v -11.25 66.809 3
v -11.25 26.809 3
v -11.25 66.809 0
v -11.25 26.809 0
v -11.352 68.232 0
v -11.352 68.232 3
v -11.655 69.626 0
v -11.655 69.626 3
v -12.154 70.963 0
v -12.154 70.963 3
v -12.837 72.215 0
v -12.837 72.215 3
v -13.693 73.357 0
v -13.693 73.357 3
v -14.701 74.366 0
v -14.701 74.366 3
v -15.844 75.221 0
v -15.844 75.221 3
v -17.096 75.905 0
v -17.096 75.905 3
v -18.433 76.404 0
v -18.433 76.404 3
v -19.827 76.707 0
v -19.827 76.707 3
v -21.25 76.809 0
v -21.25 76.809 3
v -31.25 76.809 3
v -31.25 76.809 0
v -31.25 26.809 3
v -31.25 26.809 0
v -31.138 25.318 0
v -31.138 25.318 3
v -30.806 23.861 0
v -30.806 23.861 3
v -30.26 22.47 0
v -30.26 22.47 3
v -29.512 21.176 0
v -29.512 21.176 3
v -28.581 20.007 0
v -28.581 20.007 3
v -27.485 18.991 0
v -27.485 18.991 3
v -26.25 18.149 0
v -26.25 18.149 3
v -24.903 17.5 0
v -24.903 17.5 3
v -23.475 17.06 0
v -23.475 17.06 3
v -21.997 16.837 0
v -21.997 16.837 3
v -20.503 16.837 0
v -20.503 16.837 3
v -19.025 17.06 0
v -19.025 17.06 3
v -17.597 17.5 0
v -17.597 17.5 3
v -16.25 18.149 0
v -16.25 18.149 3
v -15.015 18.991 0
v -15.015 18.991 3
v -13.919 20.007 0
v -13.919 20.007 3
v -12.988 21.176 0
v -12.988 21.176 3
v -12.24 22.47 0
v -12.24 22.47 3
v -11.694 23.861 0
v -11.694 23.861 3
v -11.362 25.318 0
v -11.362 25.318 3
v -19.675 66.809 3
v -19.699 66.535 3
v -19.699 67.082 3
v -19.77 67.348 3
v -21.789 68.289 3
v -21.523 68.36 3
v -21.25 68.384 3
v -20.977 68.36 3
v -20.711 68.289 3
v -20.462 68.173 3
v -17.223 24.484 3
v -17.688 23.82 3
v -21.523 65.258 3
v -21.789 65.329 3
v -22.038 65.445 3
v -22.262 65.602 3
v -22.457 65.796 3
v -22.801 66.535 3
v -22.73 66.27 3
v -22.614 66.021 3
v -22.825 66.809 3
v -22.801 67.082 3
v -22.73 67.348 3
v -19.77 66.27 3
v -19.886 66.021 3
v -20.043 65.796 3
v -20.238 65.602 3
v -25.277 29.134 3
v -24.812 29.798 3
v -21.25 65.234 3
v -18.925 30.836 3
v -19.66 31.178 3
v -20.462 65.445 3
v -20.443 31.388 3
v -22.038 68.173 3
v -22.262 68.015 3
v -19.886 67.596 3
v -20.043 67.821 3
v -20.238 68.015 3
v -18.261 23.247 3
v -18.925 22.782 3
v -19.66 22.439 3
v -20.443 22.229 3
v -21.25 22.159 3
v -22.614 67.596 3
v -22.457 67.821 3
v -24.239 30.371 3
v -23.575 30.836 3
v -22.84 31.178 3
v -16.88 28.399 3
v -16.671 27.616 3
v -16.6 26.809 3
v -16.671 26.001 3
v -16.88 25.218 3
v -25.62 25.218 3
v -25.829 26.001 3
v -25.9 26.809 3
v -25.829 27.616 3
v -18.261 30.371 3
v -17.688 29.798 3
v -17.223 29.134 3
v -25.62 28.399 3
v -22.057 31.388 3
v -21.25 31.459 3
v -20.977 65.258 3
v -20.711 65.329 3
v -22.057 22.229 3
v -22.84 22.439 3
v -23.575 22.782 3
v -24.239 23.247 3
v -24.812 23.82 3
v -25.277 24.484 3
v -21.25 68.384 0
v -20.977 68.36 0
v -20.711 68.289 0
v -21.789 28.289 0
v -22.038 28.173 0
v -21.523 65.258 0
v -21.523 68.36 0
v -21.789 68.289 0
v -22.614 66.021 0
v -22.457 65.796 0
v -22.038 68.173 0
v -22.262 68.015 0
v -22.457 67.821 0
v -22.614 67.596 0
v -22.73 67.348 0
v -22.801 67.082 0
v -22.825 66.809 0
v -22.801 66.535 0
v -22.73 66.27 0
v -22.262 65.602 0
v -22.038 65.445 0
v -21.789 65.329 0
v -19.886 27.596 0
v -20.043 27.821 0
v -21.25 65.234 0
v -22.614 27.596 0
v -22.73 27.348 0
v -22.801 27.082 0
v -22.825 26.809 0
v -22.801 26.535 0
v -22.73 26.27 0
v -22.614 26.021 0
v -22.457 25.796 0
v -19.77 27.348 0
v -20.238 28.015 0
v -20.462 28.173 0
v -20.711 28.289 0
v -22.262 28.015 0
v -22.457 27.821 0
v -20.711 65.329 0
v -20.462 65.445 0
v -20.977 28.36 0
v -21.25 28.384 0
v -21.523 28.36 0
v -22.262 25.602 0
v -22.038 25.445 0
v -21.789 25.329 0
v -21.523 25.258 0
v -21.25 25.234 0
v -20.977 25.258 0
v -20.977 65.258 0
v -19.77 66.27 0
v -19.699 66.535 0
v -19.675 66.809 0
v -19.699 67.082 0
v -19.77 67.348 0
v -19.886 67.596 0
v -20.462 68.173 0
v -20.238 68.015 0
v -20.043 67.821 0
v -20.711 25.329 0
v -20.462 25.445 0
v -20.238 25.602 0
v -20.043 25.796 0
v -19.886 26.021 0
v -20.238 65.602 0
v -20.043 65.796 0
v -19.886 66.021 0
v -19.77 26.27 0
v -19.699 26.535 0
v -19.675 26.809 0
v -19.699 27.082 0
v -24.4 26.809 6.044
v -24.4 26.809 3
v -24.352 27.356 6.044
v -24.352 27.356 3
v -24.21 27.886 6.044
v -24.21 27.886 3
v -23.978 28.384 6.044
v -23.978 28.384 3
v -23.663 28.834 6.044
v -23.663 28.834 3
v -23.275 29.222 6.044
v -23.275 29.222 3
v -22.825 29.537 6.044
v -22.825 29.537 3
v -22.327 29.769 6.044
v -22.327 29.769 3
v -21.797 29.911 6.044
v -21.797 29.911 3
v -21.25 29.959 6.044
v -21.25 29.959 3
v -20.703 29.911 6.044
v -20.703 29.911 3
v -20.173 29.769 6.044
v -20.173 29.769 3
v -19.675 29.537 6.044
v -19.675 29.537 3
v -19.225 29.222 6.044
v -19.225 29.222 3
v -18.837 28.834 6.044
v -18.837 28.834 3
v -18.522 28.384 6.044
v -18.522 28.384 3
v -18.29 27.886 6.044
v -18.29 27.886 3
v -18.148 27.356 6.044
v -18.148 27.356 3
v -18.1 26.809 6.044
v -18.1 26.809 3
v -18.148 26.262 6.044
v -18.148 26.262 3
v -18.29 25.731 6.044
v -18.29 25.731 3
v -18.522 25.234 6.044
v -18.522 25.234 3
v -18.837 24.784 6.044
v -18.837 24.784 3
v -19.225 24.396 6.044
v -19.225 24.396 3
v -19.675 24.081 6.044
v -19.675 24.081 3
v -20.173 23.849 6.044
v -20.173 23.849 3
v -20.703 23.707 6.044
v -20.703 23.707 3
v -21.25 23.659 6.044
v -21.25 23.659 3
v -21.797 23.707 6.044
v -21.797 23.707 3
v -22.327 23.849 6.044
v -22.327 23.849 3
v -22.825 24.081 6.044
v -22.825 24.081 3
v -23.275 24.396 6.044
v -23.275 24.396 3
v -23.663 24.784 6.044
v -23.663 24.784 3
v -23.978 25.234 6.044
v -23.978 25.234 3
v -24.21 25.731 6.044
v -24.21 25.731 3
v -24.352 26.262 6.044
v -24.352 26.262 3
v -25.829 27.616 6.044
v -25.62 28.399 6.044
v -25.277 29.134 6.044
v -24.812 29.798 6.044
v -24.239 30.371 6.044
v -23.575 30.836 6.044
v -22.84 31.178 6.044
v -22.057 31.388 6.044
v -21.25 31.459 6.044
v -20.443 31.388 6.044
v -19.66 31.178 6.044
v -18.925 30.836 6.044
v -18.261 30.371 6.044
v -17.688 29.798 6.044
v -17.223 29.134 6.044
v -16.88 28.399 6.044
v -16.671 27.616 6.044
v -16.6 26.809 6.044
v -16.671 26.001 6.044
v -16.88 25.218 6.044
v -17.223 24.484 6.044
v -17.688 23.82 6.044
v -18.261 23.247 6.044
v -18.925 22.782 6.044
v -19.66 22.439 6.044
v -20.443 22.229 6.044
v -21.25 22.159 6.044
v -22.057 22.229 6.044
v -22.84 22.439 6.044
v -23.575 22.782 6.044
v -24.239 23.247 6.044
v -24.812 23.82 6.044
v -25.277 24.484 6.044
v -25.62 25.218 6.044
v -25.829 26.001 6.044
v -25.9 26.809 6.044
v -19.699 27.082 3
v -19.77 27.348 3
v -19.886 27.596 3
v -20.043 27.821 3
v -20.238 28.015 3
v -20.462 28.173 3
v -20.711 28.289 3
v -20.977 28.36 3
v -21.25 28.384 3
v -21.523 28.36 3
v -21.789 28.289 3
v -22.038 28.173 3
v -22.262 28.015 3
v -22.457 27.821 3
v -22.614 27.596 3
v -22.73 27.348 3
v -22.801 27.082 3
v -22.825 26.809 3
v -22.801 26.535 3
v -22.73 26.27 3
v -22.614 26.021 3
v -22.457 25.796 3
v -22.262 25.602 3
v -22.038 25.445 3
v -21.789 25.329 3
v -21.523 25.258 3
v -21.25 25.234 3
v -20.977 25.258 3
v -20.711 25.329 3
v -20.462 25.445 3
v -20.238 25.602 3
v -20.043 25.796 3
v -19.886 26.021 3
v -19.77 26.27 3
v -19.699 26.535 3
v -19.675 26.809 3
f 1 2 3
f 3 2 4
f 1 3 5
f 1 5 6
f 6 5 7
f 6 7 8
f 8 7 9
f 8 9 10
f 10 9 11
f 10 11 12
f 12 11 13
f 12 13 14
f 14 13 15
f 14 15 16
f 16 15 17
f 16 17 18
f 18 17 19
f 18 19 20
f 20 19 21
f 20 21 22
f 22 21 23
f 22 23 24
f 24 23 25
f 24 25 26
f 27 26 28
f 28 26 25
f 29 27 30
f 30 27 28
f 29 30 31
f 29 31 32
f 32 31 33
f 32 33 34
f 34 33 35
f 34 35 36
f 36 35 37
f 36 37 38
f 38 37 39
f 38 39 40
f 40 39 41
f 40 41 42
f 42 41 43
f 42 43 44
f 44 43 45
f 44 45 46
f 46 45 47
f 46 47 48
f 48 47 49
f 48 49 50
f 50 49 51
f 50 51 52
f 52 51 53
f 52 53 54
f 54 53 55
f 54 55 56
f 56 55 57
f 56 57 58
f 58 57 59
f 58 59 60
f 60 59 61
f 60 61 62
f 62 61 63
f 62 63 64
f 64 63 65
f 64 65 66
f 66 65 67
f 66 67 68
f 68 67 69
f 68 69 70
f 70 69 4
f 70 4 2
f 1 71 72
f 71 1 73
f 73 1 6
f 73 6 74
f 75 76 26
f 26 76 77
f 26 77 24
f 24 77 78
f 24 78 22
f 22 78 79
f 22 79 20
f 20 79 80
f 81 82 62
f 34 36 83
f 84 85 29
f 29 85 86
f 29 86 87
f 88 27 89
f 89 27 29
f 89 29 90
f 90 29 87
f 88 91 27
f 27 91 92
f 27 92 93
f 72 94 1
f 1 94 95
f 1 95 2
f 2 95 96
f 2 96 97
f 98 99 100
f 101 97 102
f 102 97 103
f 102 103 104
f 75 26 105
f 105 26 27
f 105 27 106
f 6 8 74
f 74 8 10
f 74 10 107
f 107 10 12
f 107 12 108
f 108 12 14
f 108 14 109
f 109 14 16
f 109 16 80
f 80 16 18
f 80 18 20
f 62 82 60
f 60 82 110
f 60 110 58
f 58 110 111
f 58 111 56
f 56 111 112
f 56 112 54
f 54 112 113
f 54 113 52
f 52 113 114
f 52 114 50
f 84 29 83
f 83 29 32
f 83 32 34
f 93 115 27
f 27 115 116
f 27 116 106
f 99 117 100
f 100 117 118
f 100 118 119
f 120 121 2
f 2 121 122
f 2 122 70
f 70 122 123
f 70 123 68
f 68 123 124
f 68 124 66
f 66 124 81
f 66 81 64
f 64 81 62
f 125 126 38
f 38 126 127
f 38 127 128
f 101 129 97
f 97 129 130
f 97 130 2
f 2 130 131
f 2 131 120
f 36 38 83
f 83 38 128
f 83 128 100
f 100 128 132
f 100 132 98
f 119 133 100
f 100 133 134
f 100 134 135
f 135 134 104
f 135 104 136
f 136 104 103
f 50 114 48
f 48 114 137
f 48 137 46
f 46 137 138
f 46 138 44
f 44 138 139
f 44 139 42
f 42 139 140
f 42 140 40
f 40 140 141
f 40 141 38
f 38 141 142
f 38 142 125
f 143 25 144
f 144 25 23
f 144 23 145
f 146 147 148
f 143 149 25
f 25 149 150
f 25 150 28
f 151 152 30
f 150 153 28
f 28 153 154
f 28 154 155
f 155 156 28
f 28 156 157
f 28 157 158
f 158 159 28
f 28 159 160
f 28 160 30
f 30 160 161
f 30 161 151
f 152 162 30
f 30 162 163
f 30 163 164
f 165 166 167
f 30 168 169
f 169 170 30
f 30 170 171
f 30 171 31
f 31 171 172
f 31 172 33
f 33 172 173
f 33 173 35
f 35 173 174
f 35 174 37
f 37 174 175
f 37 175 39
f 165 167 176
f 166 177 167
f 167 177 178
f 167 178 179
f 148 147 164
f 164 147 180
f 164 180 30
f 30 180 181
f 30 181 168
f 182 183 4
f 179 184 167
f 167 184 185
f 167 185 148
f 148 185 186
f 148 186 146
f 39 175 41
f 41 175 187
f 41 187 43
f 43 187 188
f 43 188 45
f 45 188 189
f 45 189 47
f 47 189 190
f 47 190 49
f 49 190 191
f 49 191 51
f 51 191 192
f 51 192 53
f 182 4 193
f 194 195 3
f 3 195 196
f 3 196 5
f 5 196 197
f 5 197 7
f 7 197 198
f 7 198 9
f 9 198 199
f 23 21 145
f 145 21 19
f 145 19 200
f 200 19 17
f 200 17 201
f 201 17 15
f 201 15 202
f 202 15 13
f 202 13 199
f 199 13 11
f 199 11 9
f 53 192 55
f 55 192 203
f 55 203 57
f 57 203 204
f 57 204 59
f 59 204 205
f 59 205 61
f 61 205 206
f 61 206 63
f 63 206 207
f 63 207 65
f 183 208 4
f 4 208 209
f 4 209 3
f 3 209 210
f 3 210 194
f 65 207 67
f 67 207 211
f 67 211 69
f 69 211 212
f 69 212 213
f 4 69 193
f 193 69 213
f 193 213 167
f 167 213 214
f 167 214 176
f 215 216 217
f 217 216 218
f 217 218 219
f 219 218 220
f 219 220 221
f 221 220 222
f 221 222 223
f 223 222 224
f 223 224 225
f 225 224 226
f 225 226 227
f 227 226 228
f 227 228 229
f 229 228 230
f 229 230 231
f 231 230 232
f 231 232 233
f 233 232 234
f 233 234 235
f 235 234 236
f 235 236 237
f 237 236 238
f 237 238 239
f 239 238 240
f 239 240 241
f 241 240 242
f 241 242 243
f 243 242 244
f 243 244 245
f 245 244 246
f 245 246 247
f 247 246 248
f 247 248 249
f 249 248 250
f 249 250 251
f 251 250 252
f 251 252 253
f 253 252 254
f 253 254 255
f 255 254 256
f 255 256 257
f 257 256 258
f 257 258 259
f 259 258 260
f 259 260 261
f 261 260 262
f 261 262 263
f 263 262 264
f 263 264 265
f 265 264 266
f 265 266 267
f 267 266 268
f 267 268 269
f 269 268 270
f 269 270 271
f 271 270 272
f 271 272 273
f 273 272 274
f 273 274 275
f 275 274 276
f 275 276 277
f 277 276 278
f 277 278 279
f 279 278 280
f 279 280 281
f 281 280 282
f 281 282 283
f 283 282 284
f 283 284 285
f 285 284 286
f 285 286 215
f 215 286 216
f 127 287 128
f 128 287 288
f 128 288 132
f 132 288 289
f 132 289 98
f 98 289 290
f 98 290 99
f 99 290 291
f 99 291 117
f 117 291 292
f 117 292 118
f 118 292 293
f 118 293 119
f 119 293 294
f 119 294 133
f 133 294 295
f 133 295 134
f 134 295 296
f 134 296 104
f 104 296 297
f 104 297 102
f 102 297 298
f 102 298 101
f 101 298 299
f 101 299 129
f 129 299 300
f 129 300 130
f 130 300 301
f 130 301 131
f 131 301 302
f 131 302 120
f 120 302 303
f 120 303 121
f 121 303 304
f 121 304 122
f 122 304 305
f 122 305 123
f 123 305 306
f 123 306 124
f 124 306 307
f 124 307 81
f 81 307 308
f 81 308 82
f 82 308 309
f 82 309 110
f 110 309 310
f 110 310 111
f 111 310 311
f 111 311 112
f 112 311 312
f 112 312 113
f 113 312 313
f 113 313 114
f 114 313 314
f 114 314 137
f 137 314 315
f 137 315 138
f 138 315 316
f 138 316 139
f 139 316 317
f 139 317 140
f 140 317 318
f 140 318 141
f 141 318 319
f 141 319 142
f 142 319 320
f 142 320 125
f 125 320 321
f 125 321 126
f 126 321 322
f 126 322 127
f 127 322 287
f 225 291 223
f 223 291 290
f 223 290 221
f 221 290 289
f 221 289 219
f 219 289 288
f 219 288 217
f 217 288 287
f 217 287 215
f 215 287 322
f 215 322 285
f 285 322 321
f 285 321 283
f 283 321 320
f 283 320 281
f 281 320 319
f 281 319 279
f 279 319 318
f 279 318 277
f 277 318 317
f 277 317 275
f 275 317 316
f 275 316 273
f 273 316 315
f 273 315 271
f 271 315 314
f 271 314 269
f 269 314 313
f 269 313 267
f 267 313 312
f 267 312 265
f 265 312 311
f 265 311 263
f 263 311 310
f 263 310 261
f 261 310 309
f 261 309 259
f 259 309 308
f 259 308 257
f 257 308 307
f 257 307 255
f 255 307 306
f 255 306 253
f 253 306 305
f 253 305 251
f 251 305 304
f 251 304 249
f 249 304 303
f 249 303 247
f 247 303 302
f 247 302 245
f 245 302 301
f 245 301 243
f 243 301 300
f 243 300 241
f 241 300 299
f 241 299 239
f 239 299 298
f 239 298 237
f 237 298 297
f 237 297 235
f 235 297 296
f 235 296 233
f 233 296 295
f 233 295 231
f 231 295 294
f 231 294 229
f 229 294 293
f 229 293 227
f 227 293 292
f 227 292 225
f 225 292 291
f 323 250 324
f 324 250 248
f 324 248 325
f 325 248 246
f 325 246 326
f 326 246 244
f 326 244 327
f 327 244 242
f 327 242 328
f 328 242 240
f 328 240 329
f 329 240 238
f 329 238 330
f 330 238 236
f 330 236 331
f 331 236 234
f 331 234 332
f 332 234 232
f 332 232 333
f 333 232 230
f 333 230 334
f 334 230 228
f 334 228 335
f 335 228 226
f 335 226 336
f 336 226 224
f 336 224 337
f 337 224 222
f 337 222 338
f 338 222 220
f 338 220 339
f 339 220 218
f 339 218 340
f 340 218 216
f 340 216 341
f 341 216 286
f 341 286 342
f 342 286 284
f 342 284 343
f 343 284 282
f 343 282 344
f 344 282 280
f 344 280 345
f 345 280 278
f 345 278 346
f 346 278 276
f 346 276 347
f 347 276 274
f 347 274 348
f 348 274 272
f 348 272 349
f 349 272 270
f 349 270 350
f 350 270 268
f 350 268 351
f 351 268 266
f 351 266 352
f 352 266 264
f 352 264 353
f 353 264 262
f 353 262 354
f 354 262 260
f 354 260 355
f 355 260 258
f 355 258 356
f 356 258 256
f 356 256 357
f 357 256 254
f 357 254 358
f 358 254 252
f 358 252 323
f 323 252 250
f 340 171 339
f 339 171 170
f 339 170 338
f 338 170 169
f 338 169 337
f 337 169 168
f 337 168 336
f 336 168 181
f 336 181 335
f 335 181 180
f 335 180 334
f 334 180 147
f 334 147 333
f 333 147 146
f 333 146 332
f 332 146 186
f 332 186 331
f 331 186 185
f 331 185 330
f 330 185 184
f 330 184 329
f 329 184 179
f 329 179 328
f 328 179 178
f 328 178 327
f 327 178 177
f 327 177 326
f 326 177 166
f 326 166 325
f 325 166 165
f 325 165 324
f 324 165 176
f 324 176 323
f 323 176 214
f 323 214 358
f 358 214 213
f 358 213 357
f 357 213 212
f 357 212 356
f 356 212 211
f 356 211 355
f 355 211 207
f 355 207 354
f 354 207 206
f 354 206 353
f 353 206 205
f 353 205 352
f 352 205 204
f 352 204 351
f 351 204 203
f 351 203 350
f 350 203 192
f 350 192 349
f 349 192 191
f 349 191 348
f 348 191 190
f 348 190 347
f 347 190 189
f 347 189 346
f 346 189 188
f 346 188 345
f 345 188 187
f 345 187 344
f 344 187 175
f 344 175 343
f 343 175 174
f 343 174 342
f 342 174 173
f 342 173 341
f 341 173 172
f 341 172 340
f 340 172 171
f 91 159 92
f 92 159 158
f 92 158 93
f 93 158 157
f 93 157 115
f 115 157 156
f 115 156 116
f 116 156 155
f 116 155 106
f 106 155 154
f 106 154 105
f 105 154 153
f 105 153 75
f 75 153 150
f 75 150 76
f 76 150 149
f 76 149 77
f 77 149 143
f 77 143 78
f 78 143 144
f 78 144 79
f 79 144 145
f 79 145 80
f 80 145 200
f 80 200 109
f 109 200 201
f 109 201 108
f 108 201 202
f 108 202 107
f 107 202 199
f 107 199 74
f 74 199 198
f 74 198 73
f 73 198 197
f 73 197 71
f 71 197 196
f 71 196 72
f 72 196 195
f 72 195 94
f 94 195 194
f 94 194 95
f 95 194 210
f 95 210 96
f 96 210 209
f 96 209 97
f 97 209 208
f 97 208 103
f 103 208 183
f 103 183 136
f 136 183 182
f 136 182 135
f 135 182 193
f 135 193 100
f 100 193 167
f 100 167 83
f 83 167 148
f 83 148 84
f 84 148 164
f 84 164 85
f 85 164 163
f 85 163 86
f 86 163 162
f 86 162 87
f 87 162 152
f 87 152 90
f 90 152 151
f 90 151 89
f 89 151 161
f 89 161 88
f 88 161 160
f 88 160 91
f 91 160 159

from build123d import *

# Parameters (mm, degrees)
BOSS_EXTRUDE1_DEPTH = 3
SKETCH2_R           = 4.65
SKETCH2_R_2         = 3.15
BOSS_EXTRUDE2_DEPTH = 3.044394089
SKETCH3_R           = 1.575
CUT_EXTRUDE1_DEPTH  = 6.044394089
SKETCH4_R           = 1.575
CUT_EXTRUDE2_DEPTH  = 12


with BuildPart() as part:
    # Sketch1 → Boss-Extrude1 (new body)
    with BuildSketch(Plane.XY):
        with BuildLine():
            Line((-31.25, 76.808826039), (-31.25, 26.808826039))
            ThreePointArc((-31.25, 26.808826039), (-21.25, 16.808826039), (-11.25, 26.808826039))
            Line((-11.25, 26.808826039), (-11.25, 66.808826039))
            ThreePointArc((-11.25, 66.808826039), (-14.178932188, 73.879893851), (-21.25, 76.808826039))
            Line((-21.25, 76.808826039), (-31.25, 76.808826039))
        make_face()
    extrude(amount=BOSS_EXTRUDE1_DEPTH)

    # Sketch2 → Boss-Extrude2 (add)
    with BuildSketch(Plane.XY.offset(3)):
        with Locations((-21.25, 26.808826039)):
            Circle(SKETCH2_R)
        with Locations((-21.25, 26.808826039)):
            Circle(SKETCH2_R_2, mode=Mode.SUBTRACT)
    extrude(amount=BOSS_EXTRUDE2_DEPTH)

    # Sketch3 → Cut-Extrude1 (cut)
    with BuildSketch(Plane(origin=(0, 0, 0), x_dir=(-1, 0, 0), z_dir=(0, 0, -1))):
        with Locations((21.25, 26.808826039)):
            Circle(SKETCH3_R)
    extrude(amount=-CUT_EXTRUDE1_DEPTH, mode=Mode.SUBTRACT)

    # Sketch4 → Cut-Extrude2 (cut)
    with BuildSketch(Plane(origin=(0, 0, 0), x_dir=(-1, 0, 0), z_dir=(0, 0, -1))):
        with Locations((21.25, 66.808826039)):
            Circle(SKETCH4_R)
    extrude(amount=-CUT_EXTRUDE2_DEPTH, mode=Mode.SUBTRACT)


solid = part.part
